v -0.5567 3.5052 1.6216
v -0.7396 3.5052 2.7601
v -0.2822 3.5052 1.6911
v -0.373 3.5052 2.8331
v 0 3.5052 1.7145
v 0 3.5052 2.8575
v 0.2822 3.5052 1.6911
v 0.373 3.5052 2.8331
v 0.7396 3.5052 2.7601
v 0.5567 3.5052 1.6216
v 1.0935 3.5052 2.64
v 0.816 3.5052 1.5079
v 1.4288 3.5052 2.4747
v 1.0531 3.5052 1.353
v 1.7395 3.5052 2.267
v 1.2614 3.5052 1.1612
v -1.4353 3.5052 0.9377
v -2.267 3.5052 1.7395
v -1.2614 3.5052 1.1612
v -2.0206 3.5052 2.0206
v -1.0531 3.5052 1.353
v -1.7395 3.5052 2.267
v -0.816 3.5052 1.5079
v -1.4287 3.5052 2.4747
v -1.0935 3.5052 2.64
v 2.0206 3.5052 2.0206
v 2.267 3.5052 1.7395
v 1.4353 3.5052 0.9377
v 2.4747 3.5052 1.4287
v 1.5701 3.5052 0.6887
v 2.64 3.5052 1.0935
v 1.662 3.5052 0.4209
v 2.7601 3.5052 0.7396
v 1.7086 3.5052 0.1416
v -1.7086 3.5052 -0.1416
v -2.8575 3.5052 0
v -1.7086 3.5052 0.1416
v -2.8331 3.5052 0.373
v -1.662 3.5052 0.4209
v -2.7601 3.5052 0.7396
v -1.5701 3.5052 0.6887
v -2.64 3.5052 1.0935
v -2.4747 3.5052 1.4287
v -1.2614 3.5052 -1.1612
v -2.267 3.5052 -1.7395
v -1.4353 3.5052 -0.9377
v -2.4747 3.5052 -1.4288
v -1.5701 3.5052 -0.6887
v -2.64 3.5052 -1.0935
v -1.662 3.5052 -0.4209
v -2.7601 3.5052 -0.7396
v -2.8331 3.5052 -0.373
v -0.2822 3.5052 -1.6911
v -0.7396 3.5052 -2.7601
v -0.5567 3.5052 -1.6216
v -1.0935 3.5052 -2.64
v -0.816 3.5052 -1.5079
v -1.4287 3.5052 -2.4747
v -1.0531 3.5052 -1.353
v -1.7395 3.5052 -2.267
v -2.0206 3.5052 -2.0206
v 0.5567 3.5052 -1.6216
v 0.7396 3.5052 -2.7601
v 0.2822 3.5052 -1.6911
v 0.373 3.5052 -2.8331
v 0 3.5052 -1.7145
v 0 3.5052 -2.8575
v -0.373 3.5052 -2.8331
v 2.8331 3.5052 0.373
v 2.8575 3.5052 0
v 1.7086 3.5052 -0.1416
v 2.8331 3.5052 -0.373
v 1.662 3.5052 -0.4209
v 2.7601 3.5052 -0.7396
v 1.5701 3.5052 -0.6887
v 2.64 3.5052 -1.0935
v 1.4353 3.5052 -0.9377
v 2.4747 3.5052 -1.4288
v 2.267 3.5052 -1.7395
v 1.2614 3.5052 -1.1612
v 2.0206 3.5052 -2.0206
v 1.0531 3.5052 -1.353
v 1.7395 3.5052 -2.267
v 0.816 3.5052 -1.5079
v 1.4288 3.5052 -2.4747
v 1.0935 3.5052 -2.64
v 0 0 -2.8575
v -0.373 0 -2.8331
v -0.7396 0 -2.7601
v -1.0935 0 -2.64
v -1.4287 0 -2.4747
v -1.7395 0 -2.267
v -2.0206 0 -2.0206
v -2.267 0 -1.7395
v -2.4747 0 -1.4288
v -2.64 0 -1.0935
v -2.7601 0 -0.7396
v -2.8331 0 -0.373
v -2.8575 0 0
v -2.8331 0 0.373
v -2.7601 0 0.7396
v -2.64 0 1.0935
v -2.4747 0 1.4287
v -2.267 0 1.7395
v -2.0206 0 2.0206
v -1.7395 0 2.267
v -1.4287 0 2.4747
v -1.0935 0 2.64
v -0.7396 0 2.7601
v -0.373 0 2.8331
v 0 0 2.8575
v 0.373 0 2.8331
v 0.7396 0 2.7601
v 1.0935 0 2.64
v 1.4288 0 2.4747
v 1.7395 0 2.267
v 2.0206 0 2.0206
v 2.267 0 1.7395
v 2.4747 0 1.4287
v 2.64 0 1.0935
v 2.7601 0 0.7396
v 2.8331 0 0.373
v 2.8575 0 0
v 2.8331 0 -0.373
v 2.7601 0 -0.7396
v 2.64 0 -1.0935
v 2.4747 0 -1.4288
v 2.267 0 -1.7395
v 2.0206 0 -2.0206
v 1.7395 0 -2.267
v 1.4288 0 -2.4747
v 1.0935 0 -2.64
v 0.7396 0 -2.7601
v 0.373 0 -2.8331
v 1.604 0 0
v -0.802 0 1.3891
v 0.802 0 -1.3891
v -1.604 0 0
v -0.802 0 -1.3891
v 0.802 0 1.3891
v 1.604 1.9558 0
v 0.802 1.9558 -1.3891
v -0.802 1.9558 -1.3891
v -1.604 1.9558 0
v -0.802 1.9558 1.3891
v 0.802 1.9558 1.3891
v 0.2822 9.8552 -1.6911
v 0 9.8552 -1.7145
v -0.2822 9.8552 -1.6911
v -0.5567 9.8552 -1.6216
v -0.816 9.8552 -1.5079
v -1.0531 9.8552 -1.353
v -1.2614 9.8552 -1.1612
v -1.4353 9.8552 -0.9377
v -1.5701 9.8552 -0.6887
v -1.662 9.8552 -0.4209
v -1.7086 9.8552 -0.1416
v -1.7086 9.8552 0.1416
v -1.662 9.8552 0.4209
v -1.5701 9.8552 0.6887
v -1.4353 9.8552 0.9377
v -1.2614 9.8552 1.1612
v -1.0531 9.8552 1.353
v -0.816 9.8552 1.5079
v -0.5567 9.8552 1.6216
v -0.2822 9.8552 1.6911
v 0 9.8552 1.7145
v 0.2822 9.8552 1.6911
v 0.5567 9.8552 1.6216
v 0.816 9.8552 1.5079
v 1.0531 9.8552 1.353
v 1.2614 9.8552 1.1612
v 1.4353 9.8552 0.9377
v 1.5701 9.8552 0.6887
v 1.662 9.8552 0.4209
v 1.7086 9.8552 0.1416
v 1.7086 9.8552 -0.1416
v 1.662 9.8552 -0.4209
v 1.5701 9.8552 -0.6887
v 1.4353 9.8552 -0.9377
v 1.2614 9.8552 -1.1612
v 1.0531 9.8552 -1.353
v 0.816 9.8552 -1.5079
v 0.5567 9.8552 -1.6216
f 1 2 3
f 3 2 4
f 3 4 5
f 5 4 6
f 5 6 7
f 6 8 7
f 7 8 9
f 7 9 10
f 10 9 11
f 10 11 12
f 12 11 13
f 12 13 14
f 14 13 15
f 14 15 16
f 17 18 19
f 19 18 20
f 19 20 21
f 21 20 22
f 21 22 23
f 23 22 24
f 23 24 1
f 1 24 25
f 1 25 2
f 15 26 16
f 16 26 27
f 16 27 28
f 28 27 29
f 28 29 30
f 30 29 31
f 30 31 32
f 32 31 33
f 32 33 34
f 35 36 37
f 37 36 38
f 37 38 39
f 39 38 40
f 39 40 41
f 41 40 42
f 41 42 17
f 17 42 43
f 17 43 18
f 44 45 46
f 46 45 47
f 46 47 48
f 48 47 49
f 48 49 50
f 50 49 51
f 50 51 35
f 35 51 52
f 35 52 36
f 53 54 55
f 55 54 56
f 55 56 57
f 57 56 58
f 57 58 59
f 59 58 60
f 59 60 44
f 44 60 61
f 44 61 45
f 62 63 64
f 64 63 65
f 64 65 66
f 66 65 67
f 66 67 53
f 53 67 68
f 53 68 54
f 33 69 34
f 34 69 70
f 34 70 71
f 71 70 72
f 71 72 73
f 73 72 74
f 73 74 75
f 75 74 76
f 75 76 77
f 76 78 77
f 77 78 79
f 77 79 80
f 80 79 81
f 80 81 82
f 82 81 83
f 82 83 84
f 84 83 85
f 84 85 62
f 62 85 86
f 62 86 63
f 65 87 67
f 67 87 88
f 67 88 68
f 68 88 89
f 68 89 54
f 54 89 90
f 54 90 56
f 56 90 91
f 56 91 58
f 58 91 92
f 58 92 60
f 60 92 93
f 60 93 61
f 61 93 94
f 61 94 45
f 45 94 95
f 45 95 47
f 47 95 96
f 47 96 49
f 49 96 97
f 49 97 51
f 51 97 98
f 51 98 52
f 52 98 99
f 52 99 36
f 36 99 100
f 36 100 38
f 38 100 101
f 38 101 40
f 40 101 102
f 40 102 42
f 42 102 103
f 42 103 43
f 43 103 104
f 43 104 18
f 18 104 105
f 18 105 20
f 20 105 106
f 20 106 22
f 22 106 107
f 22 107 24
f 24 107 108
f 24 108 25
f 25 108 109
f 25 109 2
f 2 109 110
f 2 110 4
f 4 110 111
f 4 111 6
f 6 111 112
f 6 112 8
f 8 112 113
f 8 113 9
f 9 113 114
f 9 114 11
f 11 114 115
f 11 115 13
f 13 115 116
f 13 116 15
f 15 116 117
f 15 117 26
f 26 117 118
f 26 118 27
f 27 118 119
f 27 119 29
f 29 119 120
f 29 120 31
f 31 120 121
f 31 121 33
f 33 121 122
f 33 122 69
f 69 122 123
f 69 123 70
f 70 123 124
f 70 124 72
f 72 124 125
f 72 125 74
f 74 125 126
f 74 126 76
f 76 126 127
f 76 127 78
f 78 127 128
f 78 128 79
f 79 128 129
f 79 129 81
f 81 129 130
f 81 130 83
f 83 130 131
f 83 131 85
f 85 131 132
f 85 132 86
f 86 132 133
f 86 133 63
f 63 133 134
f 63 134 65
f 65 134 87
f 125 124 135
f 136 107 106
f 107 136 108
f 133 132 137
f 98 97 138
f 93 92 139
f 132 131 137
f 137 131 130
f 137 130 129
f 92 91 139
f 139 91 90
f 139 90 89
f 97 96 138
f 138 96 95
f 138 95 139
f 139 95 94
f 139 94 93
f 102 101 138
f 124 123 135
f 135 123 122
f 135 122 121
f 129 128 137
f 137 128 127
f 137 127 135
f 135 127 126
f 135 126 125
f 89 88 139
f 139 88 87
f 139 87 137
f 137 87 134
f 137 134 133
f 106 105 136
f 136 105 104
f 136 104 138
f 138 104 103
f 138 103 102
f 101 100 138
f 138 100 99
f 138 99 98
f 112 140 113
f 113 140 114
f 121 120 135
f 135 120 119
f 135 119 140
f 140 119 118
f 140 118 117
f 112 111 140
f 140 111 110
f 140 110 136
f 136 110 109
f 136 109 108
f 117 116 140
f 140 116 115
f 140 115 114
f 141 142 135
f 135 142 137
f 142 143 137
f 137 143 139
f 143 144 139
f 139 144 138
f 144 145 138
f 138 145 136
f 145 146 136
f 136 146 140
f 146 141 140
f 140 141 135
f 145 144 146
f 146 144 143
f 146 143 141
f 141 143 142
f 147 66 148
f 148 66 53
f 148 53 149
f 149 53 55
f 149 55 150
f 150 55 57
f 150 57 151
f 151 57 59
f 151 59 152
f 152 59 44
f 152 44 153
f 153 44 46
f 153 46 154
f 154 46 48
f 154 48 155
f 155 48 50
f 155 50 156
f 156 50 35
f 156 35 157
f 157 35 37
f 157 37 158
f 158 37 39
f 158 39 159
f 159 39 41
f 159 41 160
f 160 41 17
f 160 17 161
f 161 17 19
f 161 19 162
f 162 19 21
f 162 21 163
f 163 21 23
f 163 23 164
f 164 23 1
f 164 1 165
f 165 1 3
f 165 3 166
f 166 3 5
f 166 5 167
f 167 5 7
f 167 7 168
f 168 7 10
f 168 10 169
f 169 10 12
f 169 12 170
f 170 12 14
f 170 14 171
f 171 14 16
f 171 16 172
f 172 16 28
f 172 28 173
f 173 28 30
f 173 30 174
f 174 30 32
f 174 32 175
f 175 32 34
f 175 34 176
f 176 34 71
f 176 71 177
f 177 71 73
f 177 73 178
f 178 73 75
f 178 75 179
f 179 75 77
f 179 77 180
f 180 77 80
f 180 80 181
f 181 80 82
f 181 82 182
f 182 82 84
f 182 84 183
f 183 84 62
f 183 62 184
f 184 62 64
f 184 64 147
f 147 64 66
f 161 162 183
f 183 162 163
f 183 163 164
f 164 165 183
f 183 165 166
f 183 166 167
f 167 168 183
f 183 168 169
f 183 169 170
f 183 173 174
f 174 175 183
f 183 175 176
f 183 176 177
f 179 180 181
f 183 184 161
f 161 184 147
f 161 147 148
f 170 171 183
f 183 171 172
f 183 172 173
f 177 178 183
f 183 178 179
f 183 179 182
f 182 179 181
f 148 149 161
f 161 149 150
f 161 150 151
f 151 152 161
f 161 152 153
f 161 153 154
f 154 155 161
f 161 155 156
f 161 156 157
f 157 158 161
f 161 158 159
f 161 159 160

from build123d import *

# Parameters (mm, degrees)
SKETCH1_R           = 2.8575
BOSS_EXTRUDE1_DEPTH = 3.5052
CUT_EXTRUDE1_DEPTH  = 1.9558
SKETCH3_R           = 1.7145
BOSS_EXTRUDE2_DEPTH = 6.35


with BuildPart() as part:
    # Sketch1 → Boss-Extrude1 (new body)
    with BuildSketch(Plane(origin=(0, 0, 0), x_dir=(1, 0, 0), z_dir=(0, 1, 0))):
        Circle(SKETCH1_R)
    extrude(amount=BOSS_EXTRUDE1_DEPTH)

    # Sketch2 → Cut-Extrude1 (cut)
    with BuildSketch(Plane.XZ):
        Polygon((1.603951217, 0), (0.801975608, 1.3890625), (-0.801975608, 1.3890625), (-1.603951217, 0), (-0.801975608, -1.3890625), (0.801975608, -1.3890625), align=None)
    extrude(amount=-CUT_EXTRUDE1_DEPTH, mode=Mode.SUBTRACT)

    # Sketch3 → Boss-Extrude2 (add)
    with BuildSketch(Plane(origin=(0, 3.5052, 0), x_dir=(1, 0, 0), z_dir=(0, 1, 0))):
        Circle(SKETCH3_R)
    extrude(amount=BOSS_EXTRUDE2_DEPTH)


solid = part.part
